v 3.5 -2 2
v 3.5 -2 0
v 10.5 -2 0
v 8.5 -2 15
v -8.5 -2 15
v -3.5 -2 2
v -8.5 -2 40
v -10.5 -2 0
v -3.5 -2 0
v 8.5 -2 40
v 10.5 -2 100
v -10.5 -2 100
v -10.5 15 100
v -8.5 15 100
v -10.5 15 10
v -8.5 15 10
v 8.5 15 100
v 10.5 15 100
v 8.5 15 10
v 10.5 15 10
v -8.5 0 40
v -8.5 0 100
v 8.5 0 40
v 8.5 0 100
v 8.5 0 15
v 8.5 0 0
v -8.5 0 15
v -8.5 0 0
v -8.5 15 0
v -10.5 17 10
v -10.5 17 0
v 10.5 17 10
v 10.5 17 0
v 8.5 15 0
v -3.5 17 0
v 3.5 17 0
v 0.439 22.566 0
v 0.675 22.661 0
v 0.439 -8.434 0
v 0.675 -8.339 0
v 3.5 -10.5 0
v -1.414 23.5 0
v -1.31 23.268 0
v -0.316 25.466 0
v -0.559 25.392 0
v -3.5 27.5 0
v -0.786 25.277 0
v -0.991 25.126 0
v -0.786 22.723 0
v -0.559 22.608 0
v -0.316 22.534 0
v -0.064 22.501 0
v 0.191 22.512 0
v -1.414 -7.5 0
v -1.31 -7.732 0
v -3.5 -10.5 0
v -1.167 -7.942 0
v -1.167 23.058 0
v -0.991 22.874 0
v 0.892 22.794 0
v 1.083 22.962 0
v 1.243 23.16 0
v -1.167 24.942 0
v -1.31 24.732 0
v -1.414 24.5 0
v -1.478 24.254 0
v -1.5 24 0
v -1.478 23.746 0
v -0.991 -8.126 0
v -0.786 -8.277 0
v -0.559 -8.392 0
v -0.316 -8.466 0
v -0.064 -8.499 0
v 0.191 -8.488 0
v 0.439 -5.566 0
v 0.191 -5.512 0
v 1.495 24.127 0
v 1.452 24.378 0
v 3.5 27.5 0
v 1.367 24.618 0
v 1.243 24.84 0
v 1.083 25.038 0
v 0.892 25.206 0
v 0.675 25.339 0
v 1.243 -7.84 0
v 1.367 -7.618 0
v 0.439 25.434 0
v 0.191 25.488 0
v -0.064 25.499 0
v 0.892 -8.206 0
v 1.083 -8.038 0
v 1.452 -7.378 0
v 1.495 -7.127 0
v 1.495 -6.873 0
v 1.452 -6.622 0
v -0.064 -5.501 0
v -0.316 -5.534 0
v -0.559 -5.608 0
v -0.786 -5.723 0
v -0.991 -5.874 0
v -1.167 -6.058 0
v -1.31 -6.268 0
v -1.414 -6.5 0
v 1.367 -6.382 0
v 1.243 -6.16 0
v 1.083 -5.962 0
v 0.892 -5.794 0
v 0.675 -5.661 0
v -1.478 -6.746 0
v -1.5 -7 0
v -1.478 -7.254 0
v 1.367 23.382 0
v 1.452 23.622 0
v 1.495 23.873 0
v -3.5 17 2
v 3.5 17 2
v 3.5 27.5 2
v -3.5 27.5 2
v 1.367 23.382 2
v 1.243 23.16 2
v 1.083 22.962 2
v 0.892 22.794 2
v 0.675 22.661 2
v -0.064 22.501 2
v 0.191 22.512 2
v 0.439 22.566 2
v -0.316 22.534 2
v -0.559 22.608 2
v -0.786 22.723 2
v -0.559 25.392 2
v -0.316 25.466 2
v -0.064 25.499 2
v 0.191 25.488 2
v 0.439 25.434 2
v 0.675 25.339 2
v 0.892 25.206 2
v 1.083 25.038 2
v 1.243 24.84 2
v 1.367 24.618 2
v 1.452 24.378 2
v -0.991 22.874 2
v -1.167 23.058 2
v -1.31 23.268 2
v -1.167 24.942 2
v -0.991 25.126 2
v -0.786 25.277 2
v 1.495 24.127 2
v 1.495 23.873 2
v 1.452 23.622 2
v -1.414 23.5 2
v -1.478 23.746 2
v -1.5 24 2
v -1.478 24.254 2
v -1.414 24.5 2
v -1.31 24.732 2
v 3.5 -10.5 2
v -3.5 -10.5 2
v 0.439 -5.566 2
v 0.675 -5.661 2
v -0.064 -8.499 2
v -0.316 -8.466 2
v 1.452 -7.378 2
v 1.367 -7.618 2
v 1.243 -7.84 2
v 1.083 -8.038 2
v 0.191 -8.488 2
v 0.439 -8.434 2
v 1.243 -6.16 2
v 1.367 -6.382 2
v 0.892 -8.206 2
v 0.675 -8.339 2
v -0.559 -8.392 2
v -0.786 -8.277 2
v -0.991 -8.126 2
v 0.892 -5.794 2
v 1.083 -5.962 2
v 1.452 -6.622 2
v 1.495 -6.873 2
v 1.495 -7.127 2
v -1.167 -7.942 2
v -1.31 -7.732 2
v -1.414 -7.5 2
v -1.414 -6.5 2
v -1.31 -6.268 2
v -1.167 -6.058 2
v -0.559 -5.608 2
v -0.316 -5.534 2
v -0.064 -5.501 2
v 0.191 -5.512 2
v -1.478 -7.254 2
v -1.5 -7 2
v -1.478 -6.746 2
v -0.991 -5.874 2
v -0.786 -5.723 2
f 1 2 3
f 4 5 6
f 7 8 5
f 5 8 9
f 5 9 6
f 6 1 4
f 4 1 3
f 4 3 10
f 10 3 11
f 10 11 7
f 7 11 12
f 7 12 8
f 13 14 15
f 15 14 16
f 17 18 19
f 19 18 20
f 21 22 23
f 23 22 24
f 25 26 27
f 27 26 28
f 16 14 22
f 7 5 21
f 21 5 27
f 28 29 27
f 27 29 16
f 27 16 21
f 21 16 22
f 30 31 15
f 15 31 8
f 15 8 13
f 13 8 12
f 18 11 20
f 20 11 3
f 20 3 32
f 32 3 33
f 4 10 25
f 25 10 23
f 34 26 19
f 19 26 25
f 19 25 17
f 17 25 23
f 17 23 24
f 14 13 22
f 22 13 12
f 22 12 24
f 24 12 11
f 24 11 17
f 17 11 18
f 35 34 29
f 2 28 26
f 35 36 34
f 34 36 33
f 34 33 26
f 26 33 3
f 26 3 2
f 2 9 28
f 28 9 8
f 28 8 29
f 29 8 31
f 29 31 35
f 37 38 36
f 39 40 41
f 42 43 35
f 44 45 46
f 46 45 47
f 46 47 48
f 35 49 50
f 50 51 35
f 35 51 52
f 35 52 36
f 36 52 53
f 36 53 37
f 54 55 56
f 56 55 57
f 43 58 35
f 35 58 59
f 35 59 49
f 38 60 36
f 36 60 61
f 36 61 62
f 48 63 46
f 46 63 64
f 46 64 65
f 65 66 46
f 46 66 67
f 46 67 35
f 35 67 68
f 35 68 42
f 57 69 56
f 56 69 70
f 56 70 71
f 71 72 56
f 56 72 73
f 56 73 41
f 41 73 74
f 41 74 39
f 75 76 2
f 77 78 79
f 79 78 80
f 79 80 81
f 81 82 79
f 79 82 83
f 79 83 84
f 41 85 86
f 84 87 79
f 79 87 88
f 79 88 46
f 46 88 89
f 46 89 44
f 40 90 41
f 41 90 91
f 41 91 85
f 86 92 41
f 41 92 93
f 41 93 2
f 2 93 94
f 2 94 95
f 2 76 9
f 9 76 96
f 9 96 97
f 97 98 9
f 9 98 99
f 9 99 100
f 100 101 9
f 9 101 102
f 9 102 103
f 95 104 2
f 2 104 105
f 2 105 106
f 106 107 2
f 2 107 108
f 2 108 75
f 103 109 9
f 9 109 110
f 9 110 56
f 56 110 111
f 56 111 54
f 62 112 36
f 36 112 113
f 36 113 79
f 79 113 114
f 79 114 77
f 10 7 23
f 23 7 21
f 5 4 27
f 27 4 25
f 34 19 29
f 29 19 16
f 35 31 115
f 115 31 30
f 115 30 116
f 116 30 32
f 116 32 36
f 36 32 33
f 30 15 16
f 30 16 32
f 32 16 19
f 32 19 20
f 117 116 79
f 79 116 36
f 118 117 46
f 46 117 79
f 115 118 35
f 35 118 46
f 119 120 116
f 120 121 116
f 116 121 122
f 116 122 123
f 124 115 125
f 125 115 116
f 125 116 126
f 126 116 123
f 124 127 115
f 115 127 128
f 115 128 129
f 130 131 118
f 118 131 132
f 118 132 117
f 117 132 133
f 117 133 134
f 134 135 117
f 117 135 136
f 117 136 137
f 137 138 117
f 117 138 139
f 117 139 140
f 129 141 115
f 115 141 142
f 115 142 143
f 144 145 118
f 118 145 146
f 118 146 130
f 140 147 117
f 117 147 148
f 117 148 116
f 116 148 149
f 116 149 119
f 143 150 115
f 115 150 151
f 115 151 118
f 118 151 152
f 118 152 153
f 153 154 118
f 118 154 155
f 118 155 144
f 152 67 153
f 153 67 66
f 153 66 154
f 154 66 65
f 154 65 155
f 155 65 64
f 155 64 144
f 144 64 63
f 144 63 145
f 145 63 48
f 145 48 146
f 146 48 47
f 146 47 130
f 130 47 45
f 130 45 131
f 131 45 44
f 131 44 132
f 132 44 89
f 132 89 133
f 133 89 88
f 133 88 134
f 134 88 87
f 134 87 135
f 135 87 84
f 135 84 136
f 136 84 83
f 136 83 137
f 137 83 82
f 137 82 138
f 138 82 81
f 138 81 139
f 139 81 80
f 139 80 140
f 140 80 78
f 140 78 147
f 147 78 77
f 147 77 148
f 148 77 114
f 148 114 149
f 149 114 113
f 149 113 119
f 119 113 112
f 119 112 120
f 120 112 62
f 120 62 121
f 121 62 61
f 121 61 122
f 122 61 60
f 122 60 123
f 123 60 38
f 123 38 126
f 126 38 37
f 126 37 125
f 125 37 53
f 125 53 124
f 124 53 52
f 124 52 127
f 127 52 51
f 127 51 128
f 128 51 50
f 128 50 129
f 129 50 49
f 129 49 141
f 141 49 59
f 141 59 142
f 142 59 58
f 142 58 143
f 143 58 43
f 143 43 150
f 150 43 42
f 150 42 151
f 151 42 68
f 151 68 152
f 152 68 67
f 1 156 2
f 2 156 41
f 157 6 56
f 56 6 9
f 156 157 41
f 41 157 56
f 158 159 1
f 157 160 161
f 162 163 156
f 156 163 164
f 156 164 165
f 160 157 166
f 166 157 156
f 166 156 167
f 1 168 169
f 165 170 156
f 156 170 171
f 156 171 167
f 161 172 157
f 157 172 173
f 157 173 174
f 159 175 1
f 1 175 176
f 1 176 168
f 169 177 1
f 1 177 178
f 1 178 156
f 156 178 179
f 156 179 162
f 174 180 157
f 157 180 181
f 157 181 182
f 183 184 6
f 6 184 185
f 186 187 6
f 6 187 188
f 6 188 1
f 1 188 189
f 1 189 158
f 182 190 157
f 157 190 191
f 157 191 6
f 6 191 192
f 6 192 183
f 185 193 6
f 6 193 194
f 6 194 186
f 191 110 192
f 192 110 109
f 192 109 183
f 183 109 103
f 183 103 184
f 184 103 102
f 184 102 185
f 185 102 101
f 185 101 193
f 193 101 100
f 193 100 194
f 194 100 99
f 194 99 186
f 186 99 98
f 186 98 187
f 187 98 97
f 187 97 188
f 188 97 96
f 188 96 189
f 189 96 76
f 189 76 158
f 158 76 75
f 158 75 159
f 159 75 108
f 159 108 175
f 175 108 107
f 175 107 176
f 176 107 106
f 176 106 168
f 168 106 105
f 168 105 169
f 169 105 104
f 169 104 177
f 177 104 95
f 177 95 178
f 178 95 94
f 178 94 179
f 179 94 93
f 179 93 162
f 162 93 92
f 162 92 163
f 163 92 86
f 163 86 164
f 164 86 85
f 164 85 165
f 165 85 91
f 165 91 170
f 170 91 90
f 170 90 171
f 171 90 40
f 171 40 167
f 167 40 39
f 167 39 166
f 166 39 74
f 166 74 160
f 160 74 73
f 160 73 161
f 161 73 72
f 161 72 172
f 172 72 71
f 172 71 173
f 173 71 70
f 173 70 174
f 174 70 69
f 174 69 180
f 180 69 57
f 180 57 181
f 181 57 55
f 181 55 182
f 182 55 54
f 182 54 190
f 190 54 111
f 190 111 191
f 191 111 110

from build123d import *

# Parameters (mm, degrees)
EXTRUDE_1_DEPTH     = 100
CUT_EXTRUDE_1_DEPTH = 102.662431606
SKETCH_3_W          = 21
SKETCH_3_H          = 2
EXTRUDE_2_DEPTH     = 10
SKETCH_4_R          = 1.5
EXTRUDE_3_DEPTH     = 2


with BuildPart() as part:
    # Эскиз1 → Бобышка-Вытянуть1 (new body)
    with BuildSketch(Plane.XY):
        Polygon((0, 0), (-8.5, 0), (-8.5, 15), (-10.5, 15), (-10.5, -2), (10.5, -2), (10.5, 15), (8.5, 15), (8.5, 0), align=None)
    extrude(amount=EXTRUDE_1_DEPTH)

    # Эскиз2 → Вырез-Вытянуть1 (cut, through all)
    with BuildSketch(Plane(origin=(0, 0, 0), x_dir=(1, 0, 0), z_dir=(0, 1, 0))):
        Polygon((0, -15), (-8.5, -15), (-8.5, -40), (8.5, -40), (8.5, -15), align=None)
    extrude(amount=-CUT_EXTRUDE_1_DEPTH, mode=Mode.SUBTRACT)

    # Эскиз3 → Бобышка-Вытянуть2 (add)
    with BuildSketch(Plane(origin=(0, 0, 0), x_dir=(-1, 0, 0), z_dir=(0, 0, -1))):
        with Locations((0, 16)):
            Rectangle(SKETCH_3_W, SKETCH_3_H)
    extrude(amount=-EXTRUDE_2_DEPTH)

    # Эскиз4 → Бобышка-Вытянуть3 (add)
    # profile 1 of 2: a face of its own
    with BuildSketch(Plane(origin=(0, 0, 0), x_dir=(-1, 0, 0), z_dir=(0, 0, -1))):
        Polygon((-3.5, 27.5), (3.5, 27.5), (3.5, 20.5), (3.5, 17), (0, 17), (-3.5, 17), (-3.5, 20.5), align=None)
        with Locations((0, 24)):
            Circle(SKETCH_4_R, mode=Mode.SUBTRACT)
    # profile 2 of 2: a face of its own
    with BuildSketch(Plane(origin=(0, 0, 0), x_dir=(-1, 0, 0), z_dir=(0, 0, -1))):
        Polygon((3.5, -3.5), (3.5, -10.5), (-3.5, -10.5), (-3.5, -3.5), (-3.5, -2), (0, -2), (3.5, -2), align=None)
        with Locations((0, -7)):
            Circle(SKETCH_4_R, mode=Mode.SUBTRACT)
    extrude(amount=-EXTRUDE_3_DEPTH)


solid = part.part
